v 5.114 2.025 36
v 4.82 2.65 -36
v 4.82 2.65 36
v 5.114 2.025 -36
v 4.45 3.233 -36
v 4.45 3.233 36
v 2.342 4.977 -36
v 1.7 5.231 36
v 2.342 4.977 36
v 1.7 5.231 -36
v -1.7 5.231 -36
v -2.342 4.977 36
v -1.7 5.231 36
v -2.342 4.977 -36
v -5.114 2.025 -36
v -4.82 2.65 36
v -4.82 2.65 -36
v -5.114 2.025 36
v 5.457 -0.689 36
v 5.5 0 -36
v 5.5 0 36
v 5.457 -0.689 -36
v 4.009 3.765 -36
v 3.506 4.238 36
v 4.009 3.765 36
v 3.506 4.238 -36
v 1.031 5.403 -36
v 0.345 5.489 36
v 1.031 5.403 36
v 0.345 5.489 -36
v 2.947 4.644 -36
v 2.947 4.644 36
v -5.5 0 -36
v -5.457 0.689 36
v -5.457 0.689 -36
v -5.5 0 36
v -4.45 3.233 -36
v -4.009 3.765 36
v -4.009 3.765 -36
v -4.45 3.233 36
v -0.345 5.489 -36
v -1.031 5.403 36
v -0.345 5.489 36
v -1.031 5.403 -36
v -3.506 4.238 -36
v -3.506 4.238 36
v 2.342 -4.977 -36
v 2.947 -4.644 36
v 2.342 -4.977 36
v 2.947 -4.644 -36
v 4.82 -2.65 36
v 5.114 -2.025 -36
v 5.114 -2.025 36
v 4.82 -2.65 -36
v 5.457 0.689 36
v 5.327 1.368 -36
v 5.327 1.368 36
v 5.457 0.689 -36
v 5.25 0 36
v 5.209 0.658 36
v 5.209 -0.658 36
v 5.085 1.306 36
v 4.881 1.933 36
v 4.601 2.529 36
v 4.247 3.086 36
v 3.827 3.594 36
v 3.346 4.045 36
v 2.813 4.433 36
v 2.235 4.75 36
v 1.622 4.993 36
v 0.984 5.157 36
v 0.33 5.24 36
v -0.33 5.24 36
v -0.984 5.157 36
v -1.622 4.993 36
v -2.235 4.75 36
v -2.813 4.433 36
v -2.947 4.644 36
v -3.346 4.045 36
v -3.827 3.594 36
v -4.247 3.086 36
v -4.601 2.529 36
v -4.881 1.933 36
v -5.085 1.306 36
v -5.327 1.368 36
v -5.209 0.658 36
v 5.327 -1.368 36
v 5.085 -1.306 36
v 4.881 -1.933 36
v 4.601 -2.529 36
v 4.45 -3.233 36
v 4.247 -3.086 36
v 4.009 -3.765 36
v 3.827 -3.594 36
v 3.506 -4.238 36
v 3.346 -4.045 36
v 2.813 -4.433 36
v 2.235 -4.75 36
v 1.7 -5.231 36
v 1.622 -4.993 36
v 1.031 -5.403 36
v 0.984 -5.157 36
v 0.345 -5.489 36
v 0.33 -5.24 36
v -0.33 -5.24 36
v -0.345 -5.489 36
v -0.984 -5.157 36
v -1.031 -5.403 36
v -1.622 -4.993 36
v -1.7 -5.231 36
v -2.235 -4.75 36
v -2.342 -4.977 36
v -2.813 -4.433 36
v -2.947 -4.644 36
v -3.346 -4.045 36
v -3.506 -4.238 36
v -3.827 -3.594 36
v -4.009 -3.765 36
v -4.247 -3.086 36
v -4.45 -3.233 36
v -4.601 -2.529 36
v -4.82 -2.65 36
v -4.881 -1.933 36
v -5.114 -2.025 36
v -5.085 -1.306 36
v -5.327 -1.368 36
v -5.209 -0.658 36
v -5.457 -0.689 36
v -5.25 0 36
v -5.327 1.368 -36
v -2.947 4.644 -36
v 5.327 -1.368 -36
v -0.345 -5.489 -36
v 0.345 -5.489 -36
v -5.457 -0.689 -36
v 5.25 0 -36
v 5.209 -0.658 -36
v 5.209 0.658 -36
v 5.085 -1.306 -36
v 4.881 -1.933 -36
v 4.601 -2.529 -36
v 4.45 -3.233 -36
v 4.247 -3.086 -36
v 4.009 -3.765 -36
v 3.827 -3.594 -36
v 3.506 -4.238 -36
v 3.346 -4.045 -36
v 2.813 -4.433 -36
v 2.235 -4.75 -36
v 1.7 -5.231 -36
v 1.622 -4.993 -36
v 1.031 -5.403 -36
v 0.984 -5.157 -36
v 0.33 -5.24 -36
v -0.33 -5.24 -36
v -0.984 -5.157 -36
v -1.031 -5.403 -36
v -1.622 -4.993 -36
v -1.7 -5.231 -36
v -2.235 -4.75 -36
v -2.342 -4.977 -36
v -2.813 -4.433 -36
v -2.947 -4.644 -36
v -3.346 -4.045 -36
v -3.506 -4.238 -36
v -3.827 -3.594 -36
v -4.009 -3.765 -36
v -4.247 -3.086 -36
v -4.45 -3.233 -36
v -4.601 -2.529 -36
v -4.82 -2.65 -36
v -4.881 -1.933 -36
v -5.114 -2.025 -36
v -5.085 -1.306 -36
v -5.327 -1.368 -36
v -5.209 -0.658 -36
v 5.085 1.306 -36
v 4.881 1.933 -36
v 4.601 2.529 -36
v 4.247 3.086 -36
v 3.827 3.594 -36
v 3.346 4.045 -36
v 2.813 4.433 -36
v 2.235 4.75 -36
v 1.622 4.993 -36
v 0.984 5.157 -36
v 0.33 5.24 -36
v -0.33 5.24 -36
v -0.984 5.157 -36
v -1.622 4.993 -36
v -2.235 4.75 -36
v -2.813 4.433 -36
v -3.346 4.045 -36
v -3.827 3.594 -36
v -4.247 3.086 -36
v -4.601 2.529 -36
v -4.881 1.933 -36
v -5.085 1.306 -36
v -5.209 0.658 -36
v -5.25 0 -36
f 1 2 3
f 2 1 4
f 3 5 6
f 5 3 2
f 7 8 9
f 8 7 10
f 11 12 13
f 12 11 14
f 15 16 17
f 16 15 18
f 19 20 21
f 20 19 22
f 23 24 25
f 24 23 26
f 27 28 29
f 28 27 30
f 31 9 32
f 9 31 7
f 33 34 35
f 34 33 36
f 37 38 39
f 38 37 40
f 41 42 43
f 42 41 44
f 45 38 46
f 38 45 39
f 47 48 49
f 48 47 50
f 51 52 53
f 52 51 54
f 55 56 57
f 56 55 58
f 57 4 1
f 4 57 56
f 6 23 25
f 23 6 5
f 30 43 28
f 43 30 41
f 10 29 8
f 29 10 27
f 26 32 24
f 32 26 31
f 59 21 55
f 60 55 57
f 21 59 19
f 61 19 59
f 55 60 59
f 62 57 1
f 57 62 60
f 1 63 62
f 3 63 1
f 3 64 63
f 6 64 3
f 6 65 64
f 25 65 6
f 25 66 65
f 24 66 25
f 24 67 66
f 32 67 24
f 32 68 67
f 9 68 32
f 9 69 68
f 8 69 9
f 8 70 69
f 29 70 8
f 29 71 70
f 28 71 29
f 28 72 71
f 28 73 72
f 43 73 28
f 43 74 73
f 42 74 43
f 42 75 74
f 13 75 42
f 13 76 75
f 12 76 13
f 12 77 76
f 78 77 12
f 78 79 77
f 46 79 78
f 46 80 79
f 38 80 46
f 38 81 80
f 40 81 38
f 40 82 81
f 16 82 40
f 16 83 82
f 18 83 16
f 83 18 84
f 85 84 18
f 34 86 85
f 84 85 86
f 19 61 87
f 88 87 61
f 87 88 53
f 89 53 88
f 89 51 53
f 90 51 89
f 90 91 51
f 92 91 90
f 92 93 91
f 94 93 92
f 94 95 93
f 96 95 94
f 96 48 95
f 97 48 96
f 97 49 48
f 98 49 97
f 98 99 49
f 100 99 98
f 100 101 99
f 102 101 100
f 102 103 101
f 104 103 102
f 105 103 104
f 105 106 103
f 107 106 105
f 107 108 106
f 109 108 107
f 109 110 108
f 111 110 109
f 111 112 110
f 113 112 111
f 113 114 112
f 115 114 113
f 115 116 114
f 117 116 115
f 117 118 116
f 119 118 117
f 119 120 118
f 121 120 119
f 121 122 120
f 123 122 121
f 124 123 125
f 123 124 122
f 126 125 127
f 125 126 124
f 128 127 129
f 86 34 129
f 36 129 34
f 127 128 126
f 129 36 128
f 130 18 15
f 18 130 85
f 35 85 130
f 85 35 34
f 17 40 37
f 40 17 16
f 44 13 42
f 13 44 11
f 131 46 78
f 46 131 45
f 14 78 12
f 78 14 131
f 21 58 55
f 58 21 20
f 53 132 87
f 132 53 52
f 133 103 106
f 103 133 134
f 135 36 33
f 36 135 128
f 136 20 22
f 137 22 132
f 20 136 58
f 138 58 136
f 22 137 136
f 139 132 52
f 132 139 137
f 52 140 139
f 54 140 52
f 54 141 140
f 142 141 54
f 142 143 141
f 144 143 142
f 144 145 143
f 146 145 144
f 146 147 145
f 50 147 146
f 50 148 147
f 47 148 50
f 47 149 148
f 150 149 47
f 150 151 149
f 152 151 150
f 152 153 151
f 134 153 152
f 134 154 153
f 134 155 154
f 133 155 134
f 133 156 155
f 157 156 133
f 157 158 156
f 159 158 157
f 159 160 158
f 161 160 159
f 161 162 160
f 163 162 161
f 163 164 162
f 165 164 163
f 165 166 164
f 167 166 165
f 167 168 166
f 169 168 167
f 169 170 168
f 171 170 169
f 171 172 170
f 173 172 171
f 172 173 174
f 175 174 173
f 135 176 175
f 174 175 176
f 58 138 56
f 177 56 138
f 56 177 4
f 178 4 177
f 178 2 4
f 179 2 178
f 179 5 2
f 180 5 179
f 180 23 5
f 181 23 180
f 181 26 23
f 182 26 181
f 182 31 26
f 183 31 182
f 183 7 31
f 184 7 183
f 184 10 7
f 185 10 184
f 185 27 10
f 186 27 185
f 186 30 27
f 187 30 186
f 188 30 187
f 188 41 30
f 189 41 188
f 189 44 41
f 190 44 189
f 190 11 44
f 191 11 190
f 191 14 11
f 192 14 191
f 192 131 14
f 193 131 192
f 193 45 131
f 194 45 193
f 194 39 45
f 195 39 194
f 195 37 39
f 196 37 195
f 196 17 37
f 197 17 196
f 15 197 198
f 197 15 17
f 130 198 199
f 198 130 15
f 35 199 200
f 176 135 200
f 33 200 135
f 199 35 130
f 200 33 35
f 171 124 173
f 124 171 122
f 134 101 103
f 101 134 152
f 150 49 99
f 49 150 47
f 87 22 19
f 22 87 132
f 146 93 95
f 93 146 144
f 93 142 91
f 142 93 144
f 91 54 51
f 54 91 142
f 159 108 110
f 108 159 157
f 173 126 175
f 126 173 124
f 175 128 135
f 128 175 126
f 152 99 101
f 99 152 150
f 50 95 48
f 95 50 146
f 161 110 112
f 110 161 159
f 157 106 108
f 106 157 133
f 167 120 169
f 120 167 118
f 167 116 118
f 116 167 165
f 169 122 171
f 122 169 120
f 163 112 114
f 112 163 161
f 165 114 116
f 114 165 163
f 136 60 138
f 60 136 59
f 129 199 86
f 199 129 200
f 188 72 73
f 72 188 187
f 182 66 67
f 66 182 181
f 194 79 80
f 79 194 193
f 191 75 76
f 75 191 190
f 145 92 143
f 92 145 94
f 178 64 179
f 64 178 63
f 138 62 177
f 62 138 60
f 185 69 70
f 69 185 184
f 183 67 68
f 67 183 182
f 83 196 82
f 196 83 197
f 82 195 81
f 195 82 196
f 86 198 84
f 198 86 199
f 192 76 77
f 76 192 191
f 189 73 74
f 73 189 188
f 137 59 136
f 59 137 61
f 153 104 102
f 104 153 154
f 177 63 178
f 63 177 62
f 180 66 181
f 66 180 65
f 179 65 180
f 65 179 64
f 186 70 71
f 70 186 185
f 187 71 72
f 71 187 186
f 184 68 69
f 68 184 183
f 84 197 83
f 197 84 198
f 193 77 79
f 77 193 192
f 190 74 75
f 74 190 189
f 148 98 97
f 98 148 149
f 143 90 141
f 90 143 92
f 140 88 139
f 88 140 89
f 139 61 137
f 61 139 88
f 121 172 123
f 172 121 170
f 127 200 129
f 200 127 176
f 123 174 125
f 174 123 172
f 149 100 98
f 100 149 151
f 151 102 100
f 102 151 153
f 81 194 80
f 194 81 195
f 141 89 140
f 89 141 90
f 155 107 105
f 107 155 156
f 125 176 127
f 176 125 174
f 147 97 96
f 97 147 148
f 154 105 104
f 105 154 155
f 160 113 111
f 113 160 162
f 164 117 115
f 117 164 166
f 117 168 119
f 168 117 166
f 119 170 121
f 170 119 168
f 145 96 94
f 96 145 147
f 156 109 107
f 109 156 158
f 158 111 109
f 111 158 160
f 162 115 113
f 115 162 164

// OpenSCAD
$fn = 50;


difference() {
	union() {
		translate(v = [0, 0, -36.0000000000]) {
			cylinder(h = 72, r = 5.5000000000);
		}
	}
	union() {
		translate(v = [0, 0, -100.0000000000]) {
			cylinder(h = 200, r = 5.2500000000);
		}
	}
}
